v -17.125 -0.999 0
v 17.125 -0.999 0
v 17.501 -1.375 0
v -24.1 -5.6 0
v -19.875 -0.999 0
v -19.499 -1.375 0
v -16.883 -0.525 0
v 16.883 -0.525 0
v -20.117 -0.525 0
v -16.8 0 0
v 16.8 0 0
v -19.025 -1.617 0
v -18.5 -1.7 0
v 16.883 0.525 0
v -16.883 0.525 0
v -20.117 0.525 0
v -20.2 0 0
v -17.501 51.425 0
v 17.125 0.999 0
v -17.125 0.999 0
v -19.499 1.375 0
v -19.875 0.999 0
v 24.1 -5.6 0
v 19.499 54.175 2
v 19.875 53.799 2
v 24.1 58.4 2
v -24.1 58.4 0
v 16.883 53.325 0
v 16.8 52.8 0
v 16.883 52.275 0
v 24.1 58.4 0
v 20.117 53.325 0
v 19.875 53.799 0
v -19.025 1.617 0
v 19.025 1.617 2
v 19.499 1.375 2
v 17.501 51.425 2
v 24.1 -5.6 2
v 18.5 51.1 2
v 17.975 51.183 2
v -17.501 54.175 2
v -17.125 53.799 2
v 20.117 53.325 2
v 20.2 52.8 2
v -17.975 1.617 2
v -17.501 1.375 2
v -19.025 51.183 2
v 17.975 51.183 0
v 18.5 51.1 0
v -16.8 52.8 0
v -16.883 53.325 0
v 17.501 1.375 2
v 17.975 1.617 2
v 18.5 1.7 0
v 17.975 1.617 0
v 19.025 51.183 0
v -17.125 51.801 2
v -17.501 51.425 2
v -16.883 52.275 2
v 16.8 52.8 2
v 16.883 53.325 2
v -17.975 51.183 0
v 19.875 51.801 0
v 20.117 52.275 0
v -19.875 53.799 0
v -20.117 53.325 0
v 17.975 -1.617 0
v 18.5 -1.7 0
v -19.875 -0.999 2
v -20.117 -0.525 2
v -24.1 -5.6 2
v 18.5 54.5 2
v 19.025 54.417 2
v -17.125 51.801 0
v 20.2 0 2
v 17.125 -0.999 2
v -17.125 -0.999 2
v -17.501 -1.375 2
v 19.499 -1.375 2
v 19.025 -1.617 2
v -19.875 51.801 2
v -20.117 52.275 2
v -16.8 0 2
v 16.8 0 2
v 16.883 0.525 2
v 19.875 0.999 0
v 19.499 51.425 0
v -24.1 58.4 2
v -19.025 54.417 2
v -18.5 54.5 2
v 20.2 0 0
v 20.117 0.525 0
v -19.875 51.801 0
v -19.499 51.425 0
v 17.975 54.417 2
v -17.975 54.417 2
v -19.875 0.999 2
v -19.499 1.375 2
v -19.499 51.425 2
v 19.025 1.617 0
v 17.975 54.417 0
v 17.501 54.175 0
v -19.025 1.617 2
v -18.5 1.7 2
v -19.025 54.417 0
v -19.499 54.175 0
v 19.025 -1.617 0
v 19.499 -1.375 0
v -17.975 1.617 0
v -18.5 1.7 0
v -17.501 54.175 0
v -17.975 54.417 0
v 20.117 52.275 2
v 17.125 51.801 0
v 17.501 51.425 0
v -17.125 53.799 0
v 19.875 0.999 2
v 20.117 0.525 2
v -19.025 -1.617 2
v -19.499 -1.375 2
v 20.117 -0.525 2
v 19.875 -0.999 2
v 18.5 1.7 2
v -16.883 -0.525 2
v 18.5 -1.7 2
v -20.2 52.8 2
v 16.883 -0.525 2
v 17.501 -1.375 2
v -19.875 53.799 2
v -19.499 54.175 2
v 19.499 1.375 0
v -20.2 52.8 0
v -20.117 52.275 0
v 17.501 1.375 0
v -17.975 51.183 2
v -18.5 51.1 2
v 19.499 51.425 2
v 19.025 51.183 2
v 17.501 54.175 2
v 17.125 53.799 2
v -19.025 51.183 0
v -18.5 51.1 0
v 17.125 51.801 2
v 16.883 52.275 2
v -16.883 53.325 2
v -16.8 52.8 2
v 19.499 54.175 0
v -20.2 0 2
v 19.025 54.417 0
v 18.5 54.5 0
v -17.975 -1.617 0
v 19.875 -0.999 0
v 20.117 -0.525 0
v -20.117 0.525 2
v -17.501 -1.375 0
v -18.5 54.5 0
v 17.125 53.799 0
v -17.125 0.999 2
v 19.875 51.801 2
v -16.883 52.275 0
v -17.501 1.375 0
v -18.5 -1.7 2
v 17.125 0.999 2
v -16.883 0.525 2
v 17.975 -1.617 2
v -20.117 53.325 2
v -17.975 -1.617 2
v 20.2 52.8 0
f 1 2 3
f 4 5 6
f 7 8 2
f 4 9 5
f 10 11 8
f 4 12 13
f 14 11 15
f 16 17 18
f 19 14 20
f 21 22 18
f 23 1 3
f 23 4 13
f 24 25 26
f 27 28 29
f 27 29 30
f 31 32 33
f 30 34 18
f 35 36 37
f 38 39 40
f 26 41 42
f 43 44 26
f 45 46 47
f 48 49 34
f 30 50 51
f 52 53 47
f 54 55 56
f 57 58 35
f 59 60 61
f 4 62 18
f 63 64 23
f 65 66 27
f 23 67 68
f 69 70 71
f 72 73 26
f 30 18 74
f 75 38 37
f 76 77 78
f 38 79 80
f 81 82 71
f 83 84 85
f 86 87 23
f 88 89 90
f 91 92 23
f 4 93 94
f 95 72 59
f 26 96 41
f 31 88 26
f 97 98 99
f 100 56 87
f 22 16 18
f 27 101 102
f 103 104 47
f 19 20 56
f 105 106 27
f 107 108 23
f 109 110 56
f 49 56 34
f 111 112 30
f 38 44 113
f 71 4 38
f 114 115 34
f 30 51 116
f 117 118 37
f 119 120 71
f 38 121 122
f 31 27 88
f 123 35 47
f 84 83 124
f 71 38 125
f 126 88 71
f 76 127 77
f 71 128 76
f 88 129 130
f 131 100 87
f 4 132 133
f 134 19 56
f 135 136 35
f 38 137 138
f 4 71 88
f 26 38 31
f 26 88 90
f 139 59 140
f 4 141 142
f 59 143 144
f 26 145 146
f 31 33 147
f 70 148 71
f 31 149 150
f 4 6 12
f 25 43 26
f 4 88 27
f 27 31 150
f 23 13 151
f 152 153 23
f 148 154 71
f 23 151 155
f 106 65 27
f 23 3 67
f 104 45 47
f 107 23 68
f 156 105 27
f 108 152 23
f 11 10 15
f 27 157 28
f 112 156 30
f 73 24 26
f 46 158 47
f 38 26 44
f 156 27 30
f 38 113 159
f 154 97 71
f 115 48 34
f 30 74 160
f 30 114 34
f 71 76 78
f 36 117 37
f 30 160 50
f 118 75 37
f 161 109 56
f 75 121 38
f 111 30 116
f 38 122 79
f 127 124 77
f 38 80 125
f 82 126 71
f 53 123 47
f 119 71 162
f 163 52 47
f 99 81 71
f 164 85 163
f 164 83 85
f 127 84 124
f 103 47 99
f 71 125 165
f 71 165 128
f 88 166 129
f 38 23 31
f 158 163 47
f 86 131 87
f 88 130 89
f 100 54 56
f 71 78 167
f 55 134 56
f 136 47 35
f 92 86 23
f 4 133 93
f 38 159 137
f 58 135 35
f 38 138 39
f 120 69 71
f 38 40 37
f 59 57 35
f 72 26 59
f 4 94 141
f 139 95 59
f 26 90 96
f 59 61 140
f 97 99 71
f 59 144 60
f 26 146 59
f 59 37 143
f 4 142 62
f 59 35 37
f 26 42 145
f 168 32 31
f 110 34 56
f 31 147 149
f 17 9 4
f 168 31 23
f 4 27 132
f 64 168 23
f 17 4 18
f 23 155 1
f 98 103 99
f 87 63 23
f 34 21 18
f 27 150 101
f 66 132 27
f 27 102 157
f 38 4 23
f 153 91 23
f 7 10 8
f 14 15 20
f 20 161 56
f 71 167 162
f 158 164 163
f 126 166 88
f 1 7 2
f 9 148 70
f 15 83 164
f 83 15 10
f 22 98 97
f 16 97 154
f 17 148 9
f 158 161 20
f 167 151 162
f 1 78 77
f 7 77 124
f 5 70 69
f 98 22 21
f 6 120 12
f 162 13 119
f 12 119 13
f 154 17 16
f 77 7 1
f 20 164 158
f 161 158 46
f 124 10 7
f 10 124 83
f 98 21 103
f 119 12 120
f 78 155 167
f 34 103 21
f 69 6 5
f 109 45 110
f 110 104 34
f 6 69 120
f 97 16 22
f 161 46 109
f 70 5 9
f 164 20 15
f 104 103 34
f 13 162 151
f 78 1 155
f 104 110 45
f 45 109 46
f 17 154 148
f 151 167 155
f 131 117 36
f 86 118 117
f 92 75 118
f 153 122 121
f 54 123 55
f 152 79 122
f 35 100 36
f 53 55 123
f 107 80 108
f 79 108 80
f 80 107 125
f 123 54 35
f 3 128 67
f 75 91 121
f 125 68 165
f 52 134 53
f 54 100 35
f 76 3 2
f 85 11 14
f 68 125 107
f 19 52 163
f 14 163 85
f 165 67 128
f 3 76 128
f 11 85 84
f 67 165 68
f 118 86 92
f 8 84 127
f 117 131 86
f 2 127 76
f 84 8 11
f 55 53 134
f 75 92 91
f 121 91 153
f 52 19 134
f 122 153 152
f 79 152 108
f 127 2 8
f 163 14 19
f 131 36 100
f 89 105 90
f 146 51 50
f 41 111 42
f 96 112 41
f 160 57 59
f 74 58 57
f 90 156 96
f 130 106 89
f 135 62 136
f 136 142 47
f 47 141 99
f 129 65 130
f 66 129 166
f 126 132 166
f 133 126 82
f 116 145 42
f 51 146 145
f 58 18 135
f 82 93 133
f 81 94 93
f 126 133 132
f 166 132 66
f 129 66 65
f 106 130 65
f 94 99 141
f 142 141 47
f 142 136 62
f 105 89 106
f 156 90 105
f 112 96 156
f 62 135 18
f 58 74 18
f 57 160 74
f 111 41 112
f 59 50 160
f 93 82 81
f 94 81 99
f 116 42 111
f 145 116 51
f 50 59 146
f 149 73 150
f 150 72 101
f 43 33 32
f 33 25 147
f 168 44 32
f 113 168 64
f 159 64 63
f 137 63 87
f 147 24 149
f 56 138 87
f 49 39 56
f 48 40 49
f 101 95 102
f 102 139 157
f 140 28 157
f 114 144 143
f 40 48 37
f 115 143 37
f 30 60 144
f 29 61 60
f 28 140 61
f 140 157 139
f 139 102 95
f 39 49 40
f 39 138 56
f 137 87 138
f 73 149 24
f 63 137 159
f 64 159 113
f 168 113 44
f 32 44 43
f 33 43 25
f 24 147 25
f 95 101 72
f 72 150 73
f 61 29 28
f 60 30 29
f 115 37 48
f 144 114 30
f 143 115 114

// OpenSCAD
front_post_hole_offset = 24.7;
front_post_to_pcb_front = 3.6;
front_to_rear_post_hole_offset = 31.75;

panel_depth = 2;  // The width of the case front/back/sides
panel_offset = max(0.5, panel_depth-3);

// Heatset insert & PCB Post options
heatset_insert_height = 6;
heatset_insert_hole_diameter = 4.2;
heatset_insert_screw_diameter = 3;
screw_space_below_heatset = 0.4;
post_height=heatset_insert_height;// + screw_space_below_heatset;
post_radius = heatset_insert_hole_diameter/2+1.5;
screw_radius = heatset_insert_screw_diameter/2+0.2;

// Constants associated with the case lid
rear_tab_height = 2;  // The height of the tab that will lock the lid in place
rear_tab_height_offset = 1; // How much additional clearance to give the tab
tab_side_clearance = 2; // How much clearance to give each side of the tab

pcb_width = 31.6; // Width of the actual PCB (should be greater than front_post_hole_offset)
pcb_depth = 38+6; // Depth of the actual PCB (should be greater than front_to_rear_post_hole_offset);
pcb_height = 1.6; // Height of the PCB fiberglass (part of the RJ-11 offset)

rj_45_width = 17; // Width of the RJ-11 jack (for the hole in the front of the case)
rj_45_height = 13.5+.3; // Height of the RJ-11 jack (for the hole in the front of the case)

exit_hole_width = 13; // Width of the exit hole (in the back of the case)

case_interior_width = pcb_width + 12.6; // Giving 10mm of clearance on either side for wiring, etc. 
case_interior_depth = pcb_depth + 16; // All additional depth is added to the back
case_interior_height = post_height+rj_45_height+pcb_height+3; // This should be equal to post_height + enough room for the RJ-11 jack at a minimum

zip_tie_width = 4;


////// These are defined based on the above. Breaking out to make it more explicit what is happening below)
case_exterior_width = case_interior_width + (panel_depth * 2);
case_exterior_depth = case_interior_depth + (panel_depth * 2);
case_exterior_height = case_interior_height + panel_depth;

// Related to the case lid
case_lid_depth = rear_tab_height + rear_tab_height_offset + 2;
tab_width = (case_exterior_width - exit_hole_width - (2*panel_depth) - (4*tab_side_clearance))/2;


// Lid screw posts
lid_screw_post_width = post_radius*2;  // Making it the same as the PCB holes


//


module post_holes(top_of_post) {
    // Heat set insert
    translate([0,0,top_of_post-heatset_insert_height]) cylinder(r=heatset_insert_hole_diameter/2, h=heatset_insert_height+0.01, $fn=20);
    // Screw hole
    translate([0,0,top_of_post-heatset_insert_height-screw_space_below_heatset]) cylinder(r=screw_radius, h=heatset_insert_height+screw_space_below_heatset+0.01, $fn=20);
}

    
module post_with_nut(panel_depth, panel_offset, negative_only=0) {

    // This is the post
    if(negative_only==0) {
        difference() {
            cylinder(r=post_radius, h=post_height, $fn=30);
            post_holes(post_height);
        }
    } else {
        post_holes(post_height);
    }    
}


module angle_base_post(angled_height, width, flat_height) {
    difference() {
        cube([angled_height, width, angled_height]);
        translate([-0.01,-0.01,-0.01]) rotate([0,45,0]) cube([angled_height+0.02, width+0.02, angled_height*2]);
    }
    translate([0,0,angled_height]) cube([angled_height, width, flat_height]);
}


module make_lid_screw_post(flip=0) {
    difference() {
        translate([0,0,case_exterior_height-lid_screw_post_width-heatset_insert_height]) {
            if(flip==0) {
                angle_base_post(lid_screw_post_width, lid_screw_post_width, heatset_insert_height);
            } else {
                translate([lid_screw_post_width,lid_screw_post_width,0]) rotate([0,0,180]) angle_base_post(lid_screw_post_width, lid_screw_post_width, heatset_insert_height);
            }
        }
//        cube([lid_screw_post_width,lid_screw_post_width,case_exterior_height]);

        translate([lid_screw_post_width/2,lid_screw_post_width/2,0]) 
        post_holes(case_exterior_height);
    }
}






difference () {
    // Actual lid base
    translate([-(case_exterior_width/2), -(front_post_to_pcb_front+panel_depth), 0]) cube([case_exterior_width, case_exterior_depth, panel_depth]);


    // Screw Holes    
    // Front left
    translate([-(case_exterior_width/2)+panel_depth+lid_screw_post_width/2,-(front_post_to_pcb_front)+lid_screw_post_width/2,-0.01]) cylinder(r=screw_radius, h=panel_depth+0.2, $fn=20);

    // Front right
    translate([(case_exterior_width/2)-panel_depth-lid_screw_post_width+lid_screw_post_width/2,-(front_post_to_pcb_front)+lid_screw_post_width/2,-0.01]) cylinder(r=screw_radius, h=panel_depth+0.2, $fn=20);

    // Back left
    translate([-(case_exterior_width/2)+panel_depth+lid_screw_post_width/2,case_interior_depth-lid_screw_post_width-front_post_to_pcb_front+lid_screw_post_width/2,-0.01]) cylinder(r=screw_radius, h=panel_depth+0.2, $fn=20);

    // Back right
    translate([(case_exterior_width/2)-panel_depth-lid_screw_post_width+lid_screw_post_width/2,case_interior_depth-lid_screw_post_width-front_post_to_pcb_front+lid_screw_post_width/2,-0.01]) cylinder(r=screw_radius, h=panel_depth+0.2, $fn=20);
}


// Fermentrack Logo
//translate([case_exterior_width/2-38,11,panel_depth]) linear_extrude(height=0.6) import("ft_logo_white_bkg.svg", dpi=800);
